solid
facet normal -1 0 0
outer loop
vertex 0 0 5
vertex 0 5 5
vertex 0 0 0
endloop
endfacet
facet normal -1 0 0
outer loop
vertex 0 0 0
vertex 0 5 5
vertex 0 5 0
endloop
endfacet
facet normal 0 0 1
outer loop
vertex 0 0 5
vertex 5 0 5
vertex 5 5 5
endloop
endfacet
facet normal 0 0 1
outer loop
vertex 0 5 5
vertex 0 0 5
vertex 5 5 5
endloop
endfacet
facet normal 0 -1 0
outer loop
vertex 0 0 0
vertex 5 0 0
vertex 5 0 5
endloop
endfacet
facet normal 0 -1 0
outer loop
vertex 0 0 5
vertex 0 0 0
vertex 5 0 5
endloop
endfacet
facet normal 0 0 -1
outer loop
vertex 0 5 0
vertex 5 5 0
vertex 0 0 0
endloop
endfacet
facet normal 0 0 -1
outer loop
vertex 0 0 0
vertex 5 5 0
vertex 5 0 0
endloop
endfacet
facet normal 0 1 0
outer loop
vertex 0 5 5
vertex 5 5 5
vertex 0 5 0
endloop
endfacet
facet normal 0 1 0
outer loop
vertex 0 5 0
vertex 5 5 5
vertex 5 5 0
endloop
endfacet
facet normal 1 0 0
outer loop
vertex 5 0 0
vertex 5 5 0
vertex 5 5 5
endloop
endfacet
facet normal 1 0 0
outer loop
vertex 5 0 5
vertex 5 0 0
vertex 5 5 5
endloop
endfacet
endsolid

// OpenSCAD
/*
 * OpenSCAD Workshop Examples
 * Copyright (c) 2013 Anar Software LLC. < http://anars.com >
 *
 * This program is free software: you can redistribute it and/or modify it under
 * the terms of the GNU General Public License as published by the Free Software
 * Foundation, either version 3 of the License, or (at your option) any later
 * version.
 *
 * This program is distributed in the hope that it will be useful, but WITHOUT
 * ANY WARRANTY; without even the implied warranty of MERCHANTABILITY or FITNESS
 * FOR A PARTICULAR PURPOSE. See the GNU General Public License for more details.
 *
 * You should have received a copy of the GNU General Public License along with
 * this program. If not, see < http://www.gnu.org/licenses/ >
 *
 */
/*

Creates a cube with sides of that 5 unit length in the first octant.

Parameters :

	cube(size = x);

*/

cube(size = 5);
